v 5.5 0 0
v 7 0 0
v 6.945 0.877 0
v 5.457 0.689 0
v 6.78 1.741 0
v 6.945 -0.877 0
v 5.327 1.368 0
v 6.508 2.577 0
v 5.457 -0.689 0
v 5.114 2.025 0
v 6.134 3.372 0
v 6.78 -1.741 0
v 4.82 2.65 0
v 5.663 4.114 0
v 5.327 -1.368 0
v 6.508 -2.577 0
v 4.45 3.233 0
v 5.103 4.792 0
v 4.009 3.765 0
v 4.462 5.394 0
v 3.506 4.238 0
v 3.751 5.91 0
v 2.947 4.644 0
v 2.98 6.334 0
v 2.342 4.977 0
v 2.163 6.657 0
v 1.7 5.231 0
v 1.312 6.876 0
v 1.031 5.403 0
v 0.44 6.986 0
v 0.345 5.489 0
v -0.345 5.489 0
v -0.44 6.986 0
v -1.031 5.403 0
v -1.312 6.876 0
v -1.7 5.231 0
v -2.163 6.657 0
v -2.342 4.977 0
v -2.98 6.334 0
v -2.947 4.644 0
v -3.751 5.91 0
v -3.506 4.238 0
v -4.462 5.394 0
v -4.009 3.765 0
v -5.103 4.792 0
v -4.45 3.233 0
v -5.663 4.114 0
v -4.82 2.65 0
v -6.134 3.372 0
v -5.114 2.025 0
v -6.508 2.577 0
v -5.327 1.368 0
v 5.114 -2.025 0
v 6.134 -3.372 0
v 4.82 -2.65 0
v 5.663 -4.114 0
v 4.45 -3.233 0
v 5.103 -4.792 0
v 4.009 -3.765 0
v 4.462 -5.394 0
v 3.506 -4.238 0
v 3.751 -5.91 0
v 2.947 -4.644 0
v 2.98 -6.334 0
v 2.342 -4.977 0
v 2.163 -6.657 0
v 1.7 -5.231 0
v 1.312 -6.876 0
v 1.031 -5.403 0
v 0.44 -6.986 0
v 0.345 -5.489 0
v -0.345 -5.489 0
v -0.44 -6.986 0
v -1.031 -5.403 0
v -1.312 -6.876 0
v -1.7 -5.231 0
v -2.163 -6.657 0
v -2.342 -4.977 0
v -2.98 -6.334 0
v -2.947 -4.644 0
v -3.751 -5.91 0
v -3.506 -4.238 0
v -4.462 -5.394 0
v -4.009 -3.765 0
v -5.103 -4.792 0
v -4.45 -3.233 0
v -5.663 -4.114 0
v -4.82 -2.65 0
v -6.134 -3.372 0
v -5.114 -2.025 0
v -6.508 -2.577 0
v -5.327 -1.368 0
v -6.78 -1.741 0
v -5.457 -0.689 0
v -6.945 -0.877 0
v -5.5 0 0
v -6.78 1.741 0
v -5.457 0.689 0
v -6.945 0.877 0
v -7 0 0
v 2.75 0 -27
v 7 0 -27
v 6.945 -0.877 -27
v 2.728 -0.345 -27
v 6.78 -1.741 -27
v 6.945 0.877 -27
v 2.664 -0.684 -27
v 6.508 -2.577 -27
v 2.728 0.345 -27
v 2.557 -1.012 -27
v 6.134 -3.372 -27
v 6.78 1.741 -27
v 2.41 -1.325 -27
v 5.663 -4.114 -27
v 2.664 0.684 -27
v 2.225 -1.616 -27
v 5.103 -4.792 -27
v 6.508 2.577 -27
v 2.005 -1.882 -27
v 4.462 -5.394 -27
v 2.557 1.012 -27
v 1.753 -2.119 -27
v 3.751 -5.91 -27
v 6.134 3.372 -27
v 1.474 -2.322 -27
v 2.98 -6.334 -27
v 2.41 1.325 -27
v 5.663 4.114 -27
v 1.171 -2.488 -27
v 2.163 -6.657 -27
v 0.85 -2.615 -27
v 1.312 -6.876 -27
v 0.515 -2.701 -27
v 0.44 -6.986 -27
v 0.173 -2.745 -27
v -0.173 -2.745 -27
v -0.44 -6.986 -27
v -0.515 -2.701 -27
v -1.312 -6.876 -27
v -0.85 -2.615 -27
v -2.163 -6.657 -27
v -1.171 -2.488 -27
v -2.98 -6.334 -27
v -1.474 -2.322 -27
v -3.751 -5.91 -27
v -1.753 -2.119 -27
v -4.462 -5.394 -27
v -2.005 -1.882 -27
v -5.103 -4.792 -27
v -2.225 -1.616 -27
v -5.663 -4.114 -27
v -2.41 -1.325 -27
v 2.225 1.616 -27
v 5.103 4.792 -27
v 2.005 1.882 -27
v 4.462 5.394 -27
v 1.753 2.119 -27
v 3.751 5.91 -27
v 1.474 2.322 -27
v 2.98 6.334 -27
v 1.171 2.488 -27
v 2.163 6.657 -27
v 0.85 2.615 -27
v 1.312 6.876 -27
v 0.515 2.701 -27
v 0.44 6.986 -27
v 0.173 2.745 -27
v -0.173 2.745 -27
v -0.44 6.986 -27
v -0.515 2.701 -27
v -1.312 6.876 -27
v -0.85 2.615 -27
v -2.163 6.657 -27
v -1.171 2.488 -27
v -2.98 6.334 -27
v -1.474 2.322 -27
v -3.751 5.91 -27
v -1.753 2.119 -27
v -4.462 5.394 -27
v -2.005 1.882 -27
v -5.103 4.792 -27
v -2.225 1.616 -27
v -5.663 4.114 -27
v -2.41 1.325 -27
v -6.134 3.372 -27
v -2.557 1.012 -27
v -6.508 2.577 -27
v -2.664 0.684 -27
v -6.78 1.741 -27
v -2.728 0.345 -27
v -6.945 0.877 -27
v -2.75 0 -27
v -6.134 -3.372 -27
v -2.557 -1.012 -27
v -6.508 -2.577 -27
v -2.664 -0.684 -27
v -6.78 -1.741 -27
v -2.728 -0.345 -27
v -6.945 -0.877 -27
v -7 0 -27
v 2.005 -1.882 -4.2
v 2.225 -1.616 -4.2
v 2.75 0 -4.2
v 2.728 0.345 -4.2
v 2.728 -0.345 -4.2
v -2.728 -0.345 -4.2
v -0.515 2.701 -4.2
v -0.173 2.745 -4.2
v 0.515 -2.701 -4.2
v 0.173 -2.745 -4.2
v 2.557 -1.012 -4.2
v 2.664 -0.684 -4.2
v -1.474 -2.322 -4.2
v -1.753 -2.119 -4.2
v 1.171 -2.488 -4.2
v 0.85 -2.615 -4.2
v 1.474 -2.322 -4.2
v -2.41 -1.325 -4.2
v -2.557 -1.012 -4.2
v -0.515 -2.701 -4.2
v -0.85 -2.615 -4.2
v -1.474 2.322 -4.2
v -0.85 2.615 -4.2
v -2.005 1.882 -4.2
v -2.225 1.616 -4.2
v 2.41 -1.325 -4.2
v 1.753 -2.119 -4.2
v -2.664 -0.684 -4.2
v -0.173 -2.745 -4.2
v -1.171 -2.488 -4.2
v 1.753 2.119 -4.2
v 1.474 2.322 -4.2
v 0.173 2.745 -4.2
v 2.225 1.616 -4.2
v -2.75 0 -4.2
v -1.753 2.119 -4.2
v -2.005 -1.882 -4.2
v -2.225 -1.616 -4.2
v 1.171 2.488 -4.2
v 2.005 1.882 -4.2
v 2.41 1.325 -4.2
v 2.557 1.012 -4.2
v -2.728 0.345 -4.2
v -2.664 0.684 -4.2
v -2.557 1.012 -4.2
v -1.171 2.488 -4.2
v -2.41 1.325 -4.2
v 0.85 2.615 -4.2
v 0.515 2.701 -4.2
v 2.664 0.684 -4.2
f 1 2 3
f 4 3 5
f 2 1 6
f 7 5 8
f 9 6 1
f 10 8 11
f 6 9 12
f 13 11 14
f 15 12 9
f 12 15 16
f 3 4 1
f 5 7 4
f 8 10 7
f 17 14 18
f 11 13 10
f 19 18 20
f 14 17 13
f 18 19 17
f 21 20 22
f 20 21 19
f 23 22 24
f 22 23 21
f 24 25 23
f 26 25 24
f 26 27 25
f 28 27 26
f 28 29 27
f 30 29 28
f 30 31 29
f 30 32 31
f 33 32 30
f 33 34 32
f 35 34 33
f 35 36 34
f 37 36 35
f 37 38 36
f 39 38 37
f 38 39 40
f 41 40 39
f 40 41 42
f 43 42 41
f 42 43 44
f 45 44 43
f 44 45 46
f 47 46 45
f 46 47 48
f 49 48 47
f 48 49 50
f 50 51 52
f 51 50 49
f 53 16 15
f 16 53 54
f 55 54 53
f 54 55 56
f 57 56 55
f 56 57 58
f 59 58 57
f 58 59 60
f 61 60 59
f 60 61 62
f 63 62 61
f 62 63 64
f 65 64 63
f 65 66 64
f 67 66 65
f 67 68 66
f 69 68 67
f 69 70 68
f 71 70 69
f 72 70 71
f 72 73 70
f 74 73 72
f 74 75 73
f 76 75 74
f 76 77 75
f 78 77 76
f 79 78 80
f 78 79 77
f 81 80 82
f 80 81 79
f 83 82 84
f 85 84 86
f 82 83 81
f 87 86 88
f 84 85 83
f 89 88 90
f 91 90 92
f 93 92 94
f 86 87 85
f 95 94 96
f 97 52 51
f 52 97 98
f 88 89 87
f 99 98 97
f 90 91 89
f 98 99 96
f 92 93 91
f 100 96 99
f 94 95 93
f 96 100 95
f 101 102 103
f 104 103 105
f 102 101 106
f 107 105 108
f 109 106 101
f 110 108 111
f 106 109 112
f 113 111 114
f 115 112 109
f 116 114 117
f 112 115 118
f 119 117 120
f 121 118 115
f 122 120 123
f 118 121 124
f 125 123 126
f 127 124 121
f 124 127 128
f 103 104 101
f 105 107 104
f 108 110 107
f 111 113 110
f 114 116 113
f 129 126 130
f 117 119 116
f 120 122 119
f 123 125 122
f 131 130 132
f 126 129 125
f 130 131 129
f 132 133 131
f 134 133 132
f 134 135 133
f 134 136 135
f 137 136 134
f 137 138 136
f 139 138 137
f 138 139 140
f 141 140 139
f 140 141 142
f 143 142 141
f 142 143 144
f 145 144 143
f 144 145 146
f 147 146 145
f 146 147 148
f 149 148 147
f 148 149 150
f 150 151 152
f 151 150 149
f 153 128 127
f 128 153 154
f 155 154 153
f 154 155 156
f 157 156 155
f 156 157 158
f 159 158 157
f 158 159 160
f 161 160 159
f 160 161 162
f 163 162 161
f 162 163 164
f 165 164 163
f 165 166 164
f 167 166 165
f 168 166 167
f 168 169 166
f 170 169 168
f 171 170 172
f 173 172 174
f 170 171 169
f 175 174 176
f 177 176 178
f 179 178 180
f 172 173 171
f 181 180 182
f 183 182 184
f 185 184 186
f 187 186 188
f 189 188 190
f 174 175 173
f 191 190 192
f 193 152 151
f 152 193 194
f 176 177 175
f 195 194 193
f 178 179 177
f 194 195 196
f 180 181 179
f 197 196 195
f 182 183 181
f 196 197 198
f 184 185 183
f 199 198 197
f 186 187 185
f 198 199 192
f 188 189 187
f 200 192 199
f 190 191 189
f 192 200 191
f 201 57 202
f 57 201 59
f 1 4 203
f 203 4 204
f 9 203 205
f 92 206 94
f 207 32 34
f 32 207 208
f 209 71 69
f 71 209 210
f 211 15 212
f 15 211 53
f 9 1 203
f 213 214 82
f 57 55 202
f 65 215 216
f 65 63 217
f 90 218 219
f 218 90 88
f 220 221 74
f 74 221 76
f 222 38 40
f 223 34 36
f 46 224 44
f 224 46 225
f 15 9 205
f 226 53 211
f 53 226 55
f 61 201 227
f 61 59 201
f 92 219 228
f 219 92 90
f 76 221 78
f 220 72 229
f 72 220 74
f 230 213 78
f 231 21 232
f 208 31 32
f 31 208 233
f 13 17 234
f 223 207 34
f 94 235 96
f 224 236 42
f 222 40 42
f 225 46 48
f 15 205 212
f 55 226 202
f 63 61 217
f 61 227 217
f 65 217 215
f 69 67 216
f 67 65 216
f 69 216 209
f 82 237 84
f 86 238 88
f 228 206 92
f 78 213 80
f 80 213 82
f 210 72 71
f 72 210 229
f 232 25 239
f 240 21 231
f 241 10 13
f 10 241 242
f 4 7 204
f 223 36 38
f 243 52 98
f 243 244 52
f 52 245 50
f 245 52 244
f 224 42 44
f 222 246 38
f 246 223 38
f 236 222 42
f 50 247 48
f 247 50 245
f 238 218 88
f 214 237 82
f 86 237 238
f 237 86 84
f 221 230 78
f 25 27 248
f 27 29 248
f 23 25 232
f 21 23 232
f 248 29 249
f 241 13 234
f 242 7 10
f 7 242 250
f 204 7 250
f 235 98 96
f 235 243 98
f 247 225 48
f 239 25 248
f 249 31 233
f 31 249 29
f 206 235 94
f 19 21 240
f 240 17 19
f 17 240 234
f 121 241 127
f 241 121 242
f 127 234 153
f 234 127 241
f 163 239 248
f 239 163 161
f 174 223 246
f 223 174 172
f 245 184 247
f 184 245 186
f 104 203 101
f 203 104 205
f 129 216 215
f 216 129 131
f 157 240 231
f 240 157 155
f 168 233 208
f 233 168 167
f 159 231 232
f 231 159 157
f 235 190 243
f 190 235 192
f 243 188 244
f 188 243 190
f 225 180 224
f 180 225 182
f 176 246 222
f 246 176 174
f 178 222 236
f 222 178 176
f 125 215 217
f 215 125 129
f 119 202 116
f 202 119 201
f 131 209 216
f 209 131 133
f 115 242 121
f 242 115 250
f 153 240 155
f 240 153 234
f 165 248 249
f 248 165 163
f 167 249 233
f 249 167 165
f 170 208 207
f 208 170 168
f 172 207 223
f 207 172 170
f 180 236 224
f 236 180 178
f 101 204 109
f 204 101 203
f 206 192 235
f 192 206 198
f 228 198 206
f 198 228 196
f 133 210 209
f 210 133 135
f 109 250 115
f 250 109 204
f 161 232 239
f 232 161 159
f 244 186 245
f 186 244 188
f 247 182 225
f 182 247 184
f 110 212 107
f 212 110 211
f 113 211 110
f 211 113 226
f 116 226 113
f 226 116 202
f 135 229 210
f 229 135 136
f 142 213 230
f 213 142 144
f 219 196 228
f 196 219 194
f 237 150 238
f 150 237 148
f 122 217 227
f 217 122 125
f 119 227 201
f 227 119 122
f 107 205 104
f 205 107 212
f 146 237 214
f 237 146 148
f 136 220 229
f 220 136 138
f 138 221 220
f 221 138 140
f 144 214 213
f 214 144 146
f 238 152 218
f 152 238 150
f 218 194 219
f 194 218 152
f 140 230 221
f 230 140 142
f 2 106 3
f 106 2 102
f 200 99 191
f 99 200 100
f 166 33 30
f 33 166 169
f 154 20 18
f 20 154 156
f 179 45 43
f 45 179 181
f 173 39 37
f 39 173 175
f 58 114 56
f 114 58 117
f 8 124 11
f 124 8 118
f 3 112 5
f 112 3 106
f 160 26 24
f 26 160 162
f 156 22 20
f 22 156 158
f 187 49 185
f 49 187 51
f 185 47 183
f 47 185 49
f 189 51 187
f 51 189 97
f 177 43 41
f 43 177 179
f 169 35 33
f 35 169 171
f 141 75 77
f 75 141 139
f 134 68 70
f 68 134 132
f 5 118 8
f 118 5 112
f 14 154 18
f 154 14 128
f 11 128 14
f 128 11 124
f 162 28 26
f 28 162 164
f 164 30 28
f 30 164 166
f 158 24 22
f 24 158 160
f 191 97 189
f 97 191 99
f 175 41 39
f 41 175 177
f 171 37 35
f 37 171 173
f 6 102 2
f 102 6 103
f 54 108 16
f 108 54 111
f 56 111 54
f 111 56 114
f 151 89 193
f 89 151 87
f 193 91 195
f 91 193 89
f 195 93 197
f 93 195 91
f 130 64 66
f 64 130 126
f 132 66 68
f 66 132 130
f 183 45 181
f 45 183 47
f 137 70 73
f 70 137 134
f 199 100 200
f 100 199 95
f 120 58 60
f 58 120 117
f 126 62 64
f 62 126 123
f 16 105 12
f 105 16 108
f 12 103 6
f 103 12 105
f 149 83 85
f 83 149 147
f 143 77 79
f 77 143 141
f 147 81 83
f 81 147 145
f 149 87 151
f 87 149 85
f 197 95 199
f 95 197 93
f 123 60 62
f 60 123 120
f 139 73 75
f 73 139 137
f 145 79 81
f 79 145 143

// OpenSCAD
$fn = 50;


difference() {
	union() {
		translate(v = [0, 0, -27.0000000000]) {
			cylinder(h = 27, r = 7.0000000000);
		}
		cylinder(h = 0, r = 17.0000000000);
	}
	union() {
		translate(v = [0, 0, 0]) {
			rotate(a = [0, 0, 0]) {
				difference() {
					union() {
						#translate(v = [0, 0, -27.0000000000]) {
							cylinder(h = 27, r = 2.2500000000);
						}
						#translate(v = [0, 0, -4.2000000000]) {
							cylinder(h = 4.2000000000, r1 = 2.7500000000, r2 = 5.5000000000);
						}
						#translate(v = [0, 0, -27.0000000000]) {
							cylinder(h = 27, r = 2.7500000000);
						}
						#translate(v = [0, 0, -27.0000000000]) {
							cylinder(h = 27, r = 2.2500000000);
						}
					}
					union();
				}
			}
		}
	}
}
